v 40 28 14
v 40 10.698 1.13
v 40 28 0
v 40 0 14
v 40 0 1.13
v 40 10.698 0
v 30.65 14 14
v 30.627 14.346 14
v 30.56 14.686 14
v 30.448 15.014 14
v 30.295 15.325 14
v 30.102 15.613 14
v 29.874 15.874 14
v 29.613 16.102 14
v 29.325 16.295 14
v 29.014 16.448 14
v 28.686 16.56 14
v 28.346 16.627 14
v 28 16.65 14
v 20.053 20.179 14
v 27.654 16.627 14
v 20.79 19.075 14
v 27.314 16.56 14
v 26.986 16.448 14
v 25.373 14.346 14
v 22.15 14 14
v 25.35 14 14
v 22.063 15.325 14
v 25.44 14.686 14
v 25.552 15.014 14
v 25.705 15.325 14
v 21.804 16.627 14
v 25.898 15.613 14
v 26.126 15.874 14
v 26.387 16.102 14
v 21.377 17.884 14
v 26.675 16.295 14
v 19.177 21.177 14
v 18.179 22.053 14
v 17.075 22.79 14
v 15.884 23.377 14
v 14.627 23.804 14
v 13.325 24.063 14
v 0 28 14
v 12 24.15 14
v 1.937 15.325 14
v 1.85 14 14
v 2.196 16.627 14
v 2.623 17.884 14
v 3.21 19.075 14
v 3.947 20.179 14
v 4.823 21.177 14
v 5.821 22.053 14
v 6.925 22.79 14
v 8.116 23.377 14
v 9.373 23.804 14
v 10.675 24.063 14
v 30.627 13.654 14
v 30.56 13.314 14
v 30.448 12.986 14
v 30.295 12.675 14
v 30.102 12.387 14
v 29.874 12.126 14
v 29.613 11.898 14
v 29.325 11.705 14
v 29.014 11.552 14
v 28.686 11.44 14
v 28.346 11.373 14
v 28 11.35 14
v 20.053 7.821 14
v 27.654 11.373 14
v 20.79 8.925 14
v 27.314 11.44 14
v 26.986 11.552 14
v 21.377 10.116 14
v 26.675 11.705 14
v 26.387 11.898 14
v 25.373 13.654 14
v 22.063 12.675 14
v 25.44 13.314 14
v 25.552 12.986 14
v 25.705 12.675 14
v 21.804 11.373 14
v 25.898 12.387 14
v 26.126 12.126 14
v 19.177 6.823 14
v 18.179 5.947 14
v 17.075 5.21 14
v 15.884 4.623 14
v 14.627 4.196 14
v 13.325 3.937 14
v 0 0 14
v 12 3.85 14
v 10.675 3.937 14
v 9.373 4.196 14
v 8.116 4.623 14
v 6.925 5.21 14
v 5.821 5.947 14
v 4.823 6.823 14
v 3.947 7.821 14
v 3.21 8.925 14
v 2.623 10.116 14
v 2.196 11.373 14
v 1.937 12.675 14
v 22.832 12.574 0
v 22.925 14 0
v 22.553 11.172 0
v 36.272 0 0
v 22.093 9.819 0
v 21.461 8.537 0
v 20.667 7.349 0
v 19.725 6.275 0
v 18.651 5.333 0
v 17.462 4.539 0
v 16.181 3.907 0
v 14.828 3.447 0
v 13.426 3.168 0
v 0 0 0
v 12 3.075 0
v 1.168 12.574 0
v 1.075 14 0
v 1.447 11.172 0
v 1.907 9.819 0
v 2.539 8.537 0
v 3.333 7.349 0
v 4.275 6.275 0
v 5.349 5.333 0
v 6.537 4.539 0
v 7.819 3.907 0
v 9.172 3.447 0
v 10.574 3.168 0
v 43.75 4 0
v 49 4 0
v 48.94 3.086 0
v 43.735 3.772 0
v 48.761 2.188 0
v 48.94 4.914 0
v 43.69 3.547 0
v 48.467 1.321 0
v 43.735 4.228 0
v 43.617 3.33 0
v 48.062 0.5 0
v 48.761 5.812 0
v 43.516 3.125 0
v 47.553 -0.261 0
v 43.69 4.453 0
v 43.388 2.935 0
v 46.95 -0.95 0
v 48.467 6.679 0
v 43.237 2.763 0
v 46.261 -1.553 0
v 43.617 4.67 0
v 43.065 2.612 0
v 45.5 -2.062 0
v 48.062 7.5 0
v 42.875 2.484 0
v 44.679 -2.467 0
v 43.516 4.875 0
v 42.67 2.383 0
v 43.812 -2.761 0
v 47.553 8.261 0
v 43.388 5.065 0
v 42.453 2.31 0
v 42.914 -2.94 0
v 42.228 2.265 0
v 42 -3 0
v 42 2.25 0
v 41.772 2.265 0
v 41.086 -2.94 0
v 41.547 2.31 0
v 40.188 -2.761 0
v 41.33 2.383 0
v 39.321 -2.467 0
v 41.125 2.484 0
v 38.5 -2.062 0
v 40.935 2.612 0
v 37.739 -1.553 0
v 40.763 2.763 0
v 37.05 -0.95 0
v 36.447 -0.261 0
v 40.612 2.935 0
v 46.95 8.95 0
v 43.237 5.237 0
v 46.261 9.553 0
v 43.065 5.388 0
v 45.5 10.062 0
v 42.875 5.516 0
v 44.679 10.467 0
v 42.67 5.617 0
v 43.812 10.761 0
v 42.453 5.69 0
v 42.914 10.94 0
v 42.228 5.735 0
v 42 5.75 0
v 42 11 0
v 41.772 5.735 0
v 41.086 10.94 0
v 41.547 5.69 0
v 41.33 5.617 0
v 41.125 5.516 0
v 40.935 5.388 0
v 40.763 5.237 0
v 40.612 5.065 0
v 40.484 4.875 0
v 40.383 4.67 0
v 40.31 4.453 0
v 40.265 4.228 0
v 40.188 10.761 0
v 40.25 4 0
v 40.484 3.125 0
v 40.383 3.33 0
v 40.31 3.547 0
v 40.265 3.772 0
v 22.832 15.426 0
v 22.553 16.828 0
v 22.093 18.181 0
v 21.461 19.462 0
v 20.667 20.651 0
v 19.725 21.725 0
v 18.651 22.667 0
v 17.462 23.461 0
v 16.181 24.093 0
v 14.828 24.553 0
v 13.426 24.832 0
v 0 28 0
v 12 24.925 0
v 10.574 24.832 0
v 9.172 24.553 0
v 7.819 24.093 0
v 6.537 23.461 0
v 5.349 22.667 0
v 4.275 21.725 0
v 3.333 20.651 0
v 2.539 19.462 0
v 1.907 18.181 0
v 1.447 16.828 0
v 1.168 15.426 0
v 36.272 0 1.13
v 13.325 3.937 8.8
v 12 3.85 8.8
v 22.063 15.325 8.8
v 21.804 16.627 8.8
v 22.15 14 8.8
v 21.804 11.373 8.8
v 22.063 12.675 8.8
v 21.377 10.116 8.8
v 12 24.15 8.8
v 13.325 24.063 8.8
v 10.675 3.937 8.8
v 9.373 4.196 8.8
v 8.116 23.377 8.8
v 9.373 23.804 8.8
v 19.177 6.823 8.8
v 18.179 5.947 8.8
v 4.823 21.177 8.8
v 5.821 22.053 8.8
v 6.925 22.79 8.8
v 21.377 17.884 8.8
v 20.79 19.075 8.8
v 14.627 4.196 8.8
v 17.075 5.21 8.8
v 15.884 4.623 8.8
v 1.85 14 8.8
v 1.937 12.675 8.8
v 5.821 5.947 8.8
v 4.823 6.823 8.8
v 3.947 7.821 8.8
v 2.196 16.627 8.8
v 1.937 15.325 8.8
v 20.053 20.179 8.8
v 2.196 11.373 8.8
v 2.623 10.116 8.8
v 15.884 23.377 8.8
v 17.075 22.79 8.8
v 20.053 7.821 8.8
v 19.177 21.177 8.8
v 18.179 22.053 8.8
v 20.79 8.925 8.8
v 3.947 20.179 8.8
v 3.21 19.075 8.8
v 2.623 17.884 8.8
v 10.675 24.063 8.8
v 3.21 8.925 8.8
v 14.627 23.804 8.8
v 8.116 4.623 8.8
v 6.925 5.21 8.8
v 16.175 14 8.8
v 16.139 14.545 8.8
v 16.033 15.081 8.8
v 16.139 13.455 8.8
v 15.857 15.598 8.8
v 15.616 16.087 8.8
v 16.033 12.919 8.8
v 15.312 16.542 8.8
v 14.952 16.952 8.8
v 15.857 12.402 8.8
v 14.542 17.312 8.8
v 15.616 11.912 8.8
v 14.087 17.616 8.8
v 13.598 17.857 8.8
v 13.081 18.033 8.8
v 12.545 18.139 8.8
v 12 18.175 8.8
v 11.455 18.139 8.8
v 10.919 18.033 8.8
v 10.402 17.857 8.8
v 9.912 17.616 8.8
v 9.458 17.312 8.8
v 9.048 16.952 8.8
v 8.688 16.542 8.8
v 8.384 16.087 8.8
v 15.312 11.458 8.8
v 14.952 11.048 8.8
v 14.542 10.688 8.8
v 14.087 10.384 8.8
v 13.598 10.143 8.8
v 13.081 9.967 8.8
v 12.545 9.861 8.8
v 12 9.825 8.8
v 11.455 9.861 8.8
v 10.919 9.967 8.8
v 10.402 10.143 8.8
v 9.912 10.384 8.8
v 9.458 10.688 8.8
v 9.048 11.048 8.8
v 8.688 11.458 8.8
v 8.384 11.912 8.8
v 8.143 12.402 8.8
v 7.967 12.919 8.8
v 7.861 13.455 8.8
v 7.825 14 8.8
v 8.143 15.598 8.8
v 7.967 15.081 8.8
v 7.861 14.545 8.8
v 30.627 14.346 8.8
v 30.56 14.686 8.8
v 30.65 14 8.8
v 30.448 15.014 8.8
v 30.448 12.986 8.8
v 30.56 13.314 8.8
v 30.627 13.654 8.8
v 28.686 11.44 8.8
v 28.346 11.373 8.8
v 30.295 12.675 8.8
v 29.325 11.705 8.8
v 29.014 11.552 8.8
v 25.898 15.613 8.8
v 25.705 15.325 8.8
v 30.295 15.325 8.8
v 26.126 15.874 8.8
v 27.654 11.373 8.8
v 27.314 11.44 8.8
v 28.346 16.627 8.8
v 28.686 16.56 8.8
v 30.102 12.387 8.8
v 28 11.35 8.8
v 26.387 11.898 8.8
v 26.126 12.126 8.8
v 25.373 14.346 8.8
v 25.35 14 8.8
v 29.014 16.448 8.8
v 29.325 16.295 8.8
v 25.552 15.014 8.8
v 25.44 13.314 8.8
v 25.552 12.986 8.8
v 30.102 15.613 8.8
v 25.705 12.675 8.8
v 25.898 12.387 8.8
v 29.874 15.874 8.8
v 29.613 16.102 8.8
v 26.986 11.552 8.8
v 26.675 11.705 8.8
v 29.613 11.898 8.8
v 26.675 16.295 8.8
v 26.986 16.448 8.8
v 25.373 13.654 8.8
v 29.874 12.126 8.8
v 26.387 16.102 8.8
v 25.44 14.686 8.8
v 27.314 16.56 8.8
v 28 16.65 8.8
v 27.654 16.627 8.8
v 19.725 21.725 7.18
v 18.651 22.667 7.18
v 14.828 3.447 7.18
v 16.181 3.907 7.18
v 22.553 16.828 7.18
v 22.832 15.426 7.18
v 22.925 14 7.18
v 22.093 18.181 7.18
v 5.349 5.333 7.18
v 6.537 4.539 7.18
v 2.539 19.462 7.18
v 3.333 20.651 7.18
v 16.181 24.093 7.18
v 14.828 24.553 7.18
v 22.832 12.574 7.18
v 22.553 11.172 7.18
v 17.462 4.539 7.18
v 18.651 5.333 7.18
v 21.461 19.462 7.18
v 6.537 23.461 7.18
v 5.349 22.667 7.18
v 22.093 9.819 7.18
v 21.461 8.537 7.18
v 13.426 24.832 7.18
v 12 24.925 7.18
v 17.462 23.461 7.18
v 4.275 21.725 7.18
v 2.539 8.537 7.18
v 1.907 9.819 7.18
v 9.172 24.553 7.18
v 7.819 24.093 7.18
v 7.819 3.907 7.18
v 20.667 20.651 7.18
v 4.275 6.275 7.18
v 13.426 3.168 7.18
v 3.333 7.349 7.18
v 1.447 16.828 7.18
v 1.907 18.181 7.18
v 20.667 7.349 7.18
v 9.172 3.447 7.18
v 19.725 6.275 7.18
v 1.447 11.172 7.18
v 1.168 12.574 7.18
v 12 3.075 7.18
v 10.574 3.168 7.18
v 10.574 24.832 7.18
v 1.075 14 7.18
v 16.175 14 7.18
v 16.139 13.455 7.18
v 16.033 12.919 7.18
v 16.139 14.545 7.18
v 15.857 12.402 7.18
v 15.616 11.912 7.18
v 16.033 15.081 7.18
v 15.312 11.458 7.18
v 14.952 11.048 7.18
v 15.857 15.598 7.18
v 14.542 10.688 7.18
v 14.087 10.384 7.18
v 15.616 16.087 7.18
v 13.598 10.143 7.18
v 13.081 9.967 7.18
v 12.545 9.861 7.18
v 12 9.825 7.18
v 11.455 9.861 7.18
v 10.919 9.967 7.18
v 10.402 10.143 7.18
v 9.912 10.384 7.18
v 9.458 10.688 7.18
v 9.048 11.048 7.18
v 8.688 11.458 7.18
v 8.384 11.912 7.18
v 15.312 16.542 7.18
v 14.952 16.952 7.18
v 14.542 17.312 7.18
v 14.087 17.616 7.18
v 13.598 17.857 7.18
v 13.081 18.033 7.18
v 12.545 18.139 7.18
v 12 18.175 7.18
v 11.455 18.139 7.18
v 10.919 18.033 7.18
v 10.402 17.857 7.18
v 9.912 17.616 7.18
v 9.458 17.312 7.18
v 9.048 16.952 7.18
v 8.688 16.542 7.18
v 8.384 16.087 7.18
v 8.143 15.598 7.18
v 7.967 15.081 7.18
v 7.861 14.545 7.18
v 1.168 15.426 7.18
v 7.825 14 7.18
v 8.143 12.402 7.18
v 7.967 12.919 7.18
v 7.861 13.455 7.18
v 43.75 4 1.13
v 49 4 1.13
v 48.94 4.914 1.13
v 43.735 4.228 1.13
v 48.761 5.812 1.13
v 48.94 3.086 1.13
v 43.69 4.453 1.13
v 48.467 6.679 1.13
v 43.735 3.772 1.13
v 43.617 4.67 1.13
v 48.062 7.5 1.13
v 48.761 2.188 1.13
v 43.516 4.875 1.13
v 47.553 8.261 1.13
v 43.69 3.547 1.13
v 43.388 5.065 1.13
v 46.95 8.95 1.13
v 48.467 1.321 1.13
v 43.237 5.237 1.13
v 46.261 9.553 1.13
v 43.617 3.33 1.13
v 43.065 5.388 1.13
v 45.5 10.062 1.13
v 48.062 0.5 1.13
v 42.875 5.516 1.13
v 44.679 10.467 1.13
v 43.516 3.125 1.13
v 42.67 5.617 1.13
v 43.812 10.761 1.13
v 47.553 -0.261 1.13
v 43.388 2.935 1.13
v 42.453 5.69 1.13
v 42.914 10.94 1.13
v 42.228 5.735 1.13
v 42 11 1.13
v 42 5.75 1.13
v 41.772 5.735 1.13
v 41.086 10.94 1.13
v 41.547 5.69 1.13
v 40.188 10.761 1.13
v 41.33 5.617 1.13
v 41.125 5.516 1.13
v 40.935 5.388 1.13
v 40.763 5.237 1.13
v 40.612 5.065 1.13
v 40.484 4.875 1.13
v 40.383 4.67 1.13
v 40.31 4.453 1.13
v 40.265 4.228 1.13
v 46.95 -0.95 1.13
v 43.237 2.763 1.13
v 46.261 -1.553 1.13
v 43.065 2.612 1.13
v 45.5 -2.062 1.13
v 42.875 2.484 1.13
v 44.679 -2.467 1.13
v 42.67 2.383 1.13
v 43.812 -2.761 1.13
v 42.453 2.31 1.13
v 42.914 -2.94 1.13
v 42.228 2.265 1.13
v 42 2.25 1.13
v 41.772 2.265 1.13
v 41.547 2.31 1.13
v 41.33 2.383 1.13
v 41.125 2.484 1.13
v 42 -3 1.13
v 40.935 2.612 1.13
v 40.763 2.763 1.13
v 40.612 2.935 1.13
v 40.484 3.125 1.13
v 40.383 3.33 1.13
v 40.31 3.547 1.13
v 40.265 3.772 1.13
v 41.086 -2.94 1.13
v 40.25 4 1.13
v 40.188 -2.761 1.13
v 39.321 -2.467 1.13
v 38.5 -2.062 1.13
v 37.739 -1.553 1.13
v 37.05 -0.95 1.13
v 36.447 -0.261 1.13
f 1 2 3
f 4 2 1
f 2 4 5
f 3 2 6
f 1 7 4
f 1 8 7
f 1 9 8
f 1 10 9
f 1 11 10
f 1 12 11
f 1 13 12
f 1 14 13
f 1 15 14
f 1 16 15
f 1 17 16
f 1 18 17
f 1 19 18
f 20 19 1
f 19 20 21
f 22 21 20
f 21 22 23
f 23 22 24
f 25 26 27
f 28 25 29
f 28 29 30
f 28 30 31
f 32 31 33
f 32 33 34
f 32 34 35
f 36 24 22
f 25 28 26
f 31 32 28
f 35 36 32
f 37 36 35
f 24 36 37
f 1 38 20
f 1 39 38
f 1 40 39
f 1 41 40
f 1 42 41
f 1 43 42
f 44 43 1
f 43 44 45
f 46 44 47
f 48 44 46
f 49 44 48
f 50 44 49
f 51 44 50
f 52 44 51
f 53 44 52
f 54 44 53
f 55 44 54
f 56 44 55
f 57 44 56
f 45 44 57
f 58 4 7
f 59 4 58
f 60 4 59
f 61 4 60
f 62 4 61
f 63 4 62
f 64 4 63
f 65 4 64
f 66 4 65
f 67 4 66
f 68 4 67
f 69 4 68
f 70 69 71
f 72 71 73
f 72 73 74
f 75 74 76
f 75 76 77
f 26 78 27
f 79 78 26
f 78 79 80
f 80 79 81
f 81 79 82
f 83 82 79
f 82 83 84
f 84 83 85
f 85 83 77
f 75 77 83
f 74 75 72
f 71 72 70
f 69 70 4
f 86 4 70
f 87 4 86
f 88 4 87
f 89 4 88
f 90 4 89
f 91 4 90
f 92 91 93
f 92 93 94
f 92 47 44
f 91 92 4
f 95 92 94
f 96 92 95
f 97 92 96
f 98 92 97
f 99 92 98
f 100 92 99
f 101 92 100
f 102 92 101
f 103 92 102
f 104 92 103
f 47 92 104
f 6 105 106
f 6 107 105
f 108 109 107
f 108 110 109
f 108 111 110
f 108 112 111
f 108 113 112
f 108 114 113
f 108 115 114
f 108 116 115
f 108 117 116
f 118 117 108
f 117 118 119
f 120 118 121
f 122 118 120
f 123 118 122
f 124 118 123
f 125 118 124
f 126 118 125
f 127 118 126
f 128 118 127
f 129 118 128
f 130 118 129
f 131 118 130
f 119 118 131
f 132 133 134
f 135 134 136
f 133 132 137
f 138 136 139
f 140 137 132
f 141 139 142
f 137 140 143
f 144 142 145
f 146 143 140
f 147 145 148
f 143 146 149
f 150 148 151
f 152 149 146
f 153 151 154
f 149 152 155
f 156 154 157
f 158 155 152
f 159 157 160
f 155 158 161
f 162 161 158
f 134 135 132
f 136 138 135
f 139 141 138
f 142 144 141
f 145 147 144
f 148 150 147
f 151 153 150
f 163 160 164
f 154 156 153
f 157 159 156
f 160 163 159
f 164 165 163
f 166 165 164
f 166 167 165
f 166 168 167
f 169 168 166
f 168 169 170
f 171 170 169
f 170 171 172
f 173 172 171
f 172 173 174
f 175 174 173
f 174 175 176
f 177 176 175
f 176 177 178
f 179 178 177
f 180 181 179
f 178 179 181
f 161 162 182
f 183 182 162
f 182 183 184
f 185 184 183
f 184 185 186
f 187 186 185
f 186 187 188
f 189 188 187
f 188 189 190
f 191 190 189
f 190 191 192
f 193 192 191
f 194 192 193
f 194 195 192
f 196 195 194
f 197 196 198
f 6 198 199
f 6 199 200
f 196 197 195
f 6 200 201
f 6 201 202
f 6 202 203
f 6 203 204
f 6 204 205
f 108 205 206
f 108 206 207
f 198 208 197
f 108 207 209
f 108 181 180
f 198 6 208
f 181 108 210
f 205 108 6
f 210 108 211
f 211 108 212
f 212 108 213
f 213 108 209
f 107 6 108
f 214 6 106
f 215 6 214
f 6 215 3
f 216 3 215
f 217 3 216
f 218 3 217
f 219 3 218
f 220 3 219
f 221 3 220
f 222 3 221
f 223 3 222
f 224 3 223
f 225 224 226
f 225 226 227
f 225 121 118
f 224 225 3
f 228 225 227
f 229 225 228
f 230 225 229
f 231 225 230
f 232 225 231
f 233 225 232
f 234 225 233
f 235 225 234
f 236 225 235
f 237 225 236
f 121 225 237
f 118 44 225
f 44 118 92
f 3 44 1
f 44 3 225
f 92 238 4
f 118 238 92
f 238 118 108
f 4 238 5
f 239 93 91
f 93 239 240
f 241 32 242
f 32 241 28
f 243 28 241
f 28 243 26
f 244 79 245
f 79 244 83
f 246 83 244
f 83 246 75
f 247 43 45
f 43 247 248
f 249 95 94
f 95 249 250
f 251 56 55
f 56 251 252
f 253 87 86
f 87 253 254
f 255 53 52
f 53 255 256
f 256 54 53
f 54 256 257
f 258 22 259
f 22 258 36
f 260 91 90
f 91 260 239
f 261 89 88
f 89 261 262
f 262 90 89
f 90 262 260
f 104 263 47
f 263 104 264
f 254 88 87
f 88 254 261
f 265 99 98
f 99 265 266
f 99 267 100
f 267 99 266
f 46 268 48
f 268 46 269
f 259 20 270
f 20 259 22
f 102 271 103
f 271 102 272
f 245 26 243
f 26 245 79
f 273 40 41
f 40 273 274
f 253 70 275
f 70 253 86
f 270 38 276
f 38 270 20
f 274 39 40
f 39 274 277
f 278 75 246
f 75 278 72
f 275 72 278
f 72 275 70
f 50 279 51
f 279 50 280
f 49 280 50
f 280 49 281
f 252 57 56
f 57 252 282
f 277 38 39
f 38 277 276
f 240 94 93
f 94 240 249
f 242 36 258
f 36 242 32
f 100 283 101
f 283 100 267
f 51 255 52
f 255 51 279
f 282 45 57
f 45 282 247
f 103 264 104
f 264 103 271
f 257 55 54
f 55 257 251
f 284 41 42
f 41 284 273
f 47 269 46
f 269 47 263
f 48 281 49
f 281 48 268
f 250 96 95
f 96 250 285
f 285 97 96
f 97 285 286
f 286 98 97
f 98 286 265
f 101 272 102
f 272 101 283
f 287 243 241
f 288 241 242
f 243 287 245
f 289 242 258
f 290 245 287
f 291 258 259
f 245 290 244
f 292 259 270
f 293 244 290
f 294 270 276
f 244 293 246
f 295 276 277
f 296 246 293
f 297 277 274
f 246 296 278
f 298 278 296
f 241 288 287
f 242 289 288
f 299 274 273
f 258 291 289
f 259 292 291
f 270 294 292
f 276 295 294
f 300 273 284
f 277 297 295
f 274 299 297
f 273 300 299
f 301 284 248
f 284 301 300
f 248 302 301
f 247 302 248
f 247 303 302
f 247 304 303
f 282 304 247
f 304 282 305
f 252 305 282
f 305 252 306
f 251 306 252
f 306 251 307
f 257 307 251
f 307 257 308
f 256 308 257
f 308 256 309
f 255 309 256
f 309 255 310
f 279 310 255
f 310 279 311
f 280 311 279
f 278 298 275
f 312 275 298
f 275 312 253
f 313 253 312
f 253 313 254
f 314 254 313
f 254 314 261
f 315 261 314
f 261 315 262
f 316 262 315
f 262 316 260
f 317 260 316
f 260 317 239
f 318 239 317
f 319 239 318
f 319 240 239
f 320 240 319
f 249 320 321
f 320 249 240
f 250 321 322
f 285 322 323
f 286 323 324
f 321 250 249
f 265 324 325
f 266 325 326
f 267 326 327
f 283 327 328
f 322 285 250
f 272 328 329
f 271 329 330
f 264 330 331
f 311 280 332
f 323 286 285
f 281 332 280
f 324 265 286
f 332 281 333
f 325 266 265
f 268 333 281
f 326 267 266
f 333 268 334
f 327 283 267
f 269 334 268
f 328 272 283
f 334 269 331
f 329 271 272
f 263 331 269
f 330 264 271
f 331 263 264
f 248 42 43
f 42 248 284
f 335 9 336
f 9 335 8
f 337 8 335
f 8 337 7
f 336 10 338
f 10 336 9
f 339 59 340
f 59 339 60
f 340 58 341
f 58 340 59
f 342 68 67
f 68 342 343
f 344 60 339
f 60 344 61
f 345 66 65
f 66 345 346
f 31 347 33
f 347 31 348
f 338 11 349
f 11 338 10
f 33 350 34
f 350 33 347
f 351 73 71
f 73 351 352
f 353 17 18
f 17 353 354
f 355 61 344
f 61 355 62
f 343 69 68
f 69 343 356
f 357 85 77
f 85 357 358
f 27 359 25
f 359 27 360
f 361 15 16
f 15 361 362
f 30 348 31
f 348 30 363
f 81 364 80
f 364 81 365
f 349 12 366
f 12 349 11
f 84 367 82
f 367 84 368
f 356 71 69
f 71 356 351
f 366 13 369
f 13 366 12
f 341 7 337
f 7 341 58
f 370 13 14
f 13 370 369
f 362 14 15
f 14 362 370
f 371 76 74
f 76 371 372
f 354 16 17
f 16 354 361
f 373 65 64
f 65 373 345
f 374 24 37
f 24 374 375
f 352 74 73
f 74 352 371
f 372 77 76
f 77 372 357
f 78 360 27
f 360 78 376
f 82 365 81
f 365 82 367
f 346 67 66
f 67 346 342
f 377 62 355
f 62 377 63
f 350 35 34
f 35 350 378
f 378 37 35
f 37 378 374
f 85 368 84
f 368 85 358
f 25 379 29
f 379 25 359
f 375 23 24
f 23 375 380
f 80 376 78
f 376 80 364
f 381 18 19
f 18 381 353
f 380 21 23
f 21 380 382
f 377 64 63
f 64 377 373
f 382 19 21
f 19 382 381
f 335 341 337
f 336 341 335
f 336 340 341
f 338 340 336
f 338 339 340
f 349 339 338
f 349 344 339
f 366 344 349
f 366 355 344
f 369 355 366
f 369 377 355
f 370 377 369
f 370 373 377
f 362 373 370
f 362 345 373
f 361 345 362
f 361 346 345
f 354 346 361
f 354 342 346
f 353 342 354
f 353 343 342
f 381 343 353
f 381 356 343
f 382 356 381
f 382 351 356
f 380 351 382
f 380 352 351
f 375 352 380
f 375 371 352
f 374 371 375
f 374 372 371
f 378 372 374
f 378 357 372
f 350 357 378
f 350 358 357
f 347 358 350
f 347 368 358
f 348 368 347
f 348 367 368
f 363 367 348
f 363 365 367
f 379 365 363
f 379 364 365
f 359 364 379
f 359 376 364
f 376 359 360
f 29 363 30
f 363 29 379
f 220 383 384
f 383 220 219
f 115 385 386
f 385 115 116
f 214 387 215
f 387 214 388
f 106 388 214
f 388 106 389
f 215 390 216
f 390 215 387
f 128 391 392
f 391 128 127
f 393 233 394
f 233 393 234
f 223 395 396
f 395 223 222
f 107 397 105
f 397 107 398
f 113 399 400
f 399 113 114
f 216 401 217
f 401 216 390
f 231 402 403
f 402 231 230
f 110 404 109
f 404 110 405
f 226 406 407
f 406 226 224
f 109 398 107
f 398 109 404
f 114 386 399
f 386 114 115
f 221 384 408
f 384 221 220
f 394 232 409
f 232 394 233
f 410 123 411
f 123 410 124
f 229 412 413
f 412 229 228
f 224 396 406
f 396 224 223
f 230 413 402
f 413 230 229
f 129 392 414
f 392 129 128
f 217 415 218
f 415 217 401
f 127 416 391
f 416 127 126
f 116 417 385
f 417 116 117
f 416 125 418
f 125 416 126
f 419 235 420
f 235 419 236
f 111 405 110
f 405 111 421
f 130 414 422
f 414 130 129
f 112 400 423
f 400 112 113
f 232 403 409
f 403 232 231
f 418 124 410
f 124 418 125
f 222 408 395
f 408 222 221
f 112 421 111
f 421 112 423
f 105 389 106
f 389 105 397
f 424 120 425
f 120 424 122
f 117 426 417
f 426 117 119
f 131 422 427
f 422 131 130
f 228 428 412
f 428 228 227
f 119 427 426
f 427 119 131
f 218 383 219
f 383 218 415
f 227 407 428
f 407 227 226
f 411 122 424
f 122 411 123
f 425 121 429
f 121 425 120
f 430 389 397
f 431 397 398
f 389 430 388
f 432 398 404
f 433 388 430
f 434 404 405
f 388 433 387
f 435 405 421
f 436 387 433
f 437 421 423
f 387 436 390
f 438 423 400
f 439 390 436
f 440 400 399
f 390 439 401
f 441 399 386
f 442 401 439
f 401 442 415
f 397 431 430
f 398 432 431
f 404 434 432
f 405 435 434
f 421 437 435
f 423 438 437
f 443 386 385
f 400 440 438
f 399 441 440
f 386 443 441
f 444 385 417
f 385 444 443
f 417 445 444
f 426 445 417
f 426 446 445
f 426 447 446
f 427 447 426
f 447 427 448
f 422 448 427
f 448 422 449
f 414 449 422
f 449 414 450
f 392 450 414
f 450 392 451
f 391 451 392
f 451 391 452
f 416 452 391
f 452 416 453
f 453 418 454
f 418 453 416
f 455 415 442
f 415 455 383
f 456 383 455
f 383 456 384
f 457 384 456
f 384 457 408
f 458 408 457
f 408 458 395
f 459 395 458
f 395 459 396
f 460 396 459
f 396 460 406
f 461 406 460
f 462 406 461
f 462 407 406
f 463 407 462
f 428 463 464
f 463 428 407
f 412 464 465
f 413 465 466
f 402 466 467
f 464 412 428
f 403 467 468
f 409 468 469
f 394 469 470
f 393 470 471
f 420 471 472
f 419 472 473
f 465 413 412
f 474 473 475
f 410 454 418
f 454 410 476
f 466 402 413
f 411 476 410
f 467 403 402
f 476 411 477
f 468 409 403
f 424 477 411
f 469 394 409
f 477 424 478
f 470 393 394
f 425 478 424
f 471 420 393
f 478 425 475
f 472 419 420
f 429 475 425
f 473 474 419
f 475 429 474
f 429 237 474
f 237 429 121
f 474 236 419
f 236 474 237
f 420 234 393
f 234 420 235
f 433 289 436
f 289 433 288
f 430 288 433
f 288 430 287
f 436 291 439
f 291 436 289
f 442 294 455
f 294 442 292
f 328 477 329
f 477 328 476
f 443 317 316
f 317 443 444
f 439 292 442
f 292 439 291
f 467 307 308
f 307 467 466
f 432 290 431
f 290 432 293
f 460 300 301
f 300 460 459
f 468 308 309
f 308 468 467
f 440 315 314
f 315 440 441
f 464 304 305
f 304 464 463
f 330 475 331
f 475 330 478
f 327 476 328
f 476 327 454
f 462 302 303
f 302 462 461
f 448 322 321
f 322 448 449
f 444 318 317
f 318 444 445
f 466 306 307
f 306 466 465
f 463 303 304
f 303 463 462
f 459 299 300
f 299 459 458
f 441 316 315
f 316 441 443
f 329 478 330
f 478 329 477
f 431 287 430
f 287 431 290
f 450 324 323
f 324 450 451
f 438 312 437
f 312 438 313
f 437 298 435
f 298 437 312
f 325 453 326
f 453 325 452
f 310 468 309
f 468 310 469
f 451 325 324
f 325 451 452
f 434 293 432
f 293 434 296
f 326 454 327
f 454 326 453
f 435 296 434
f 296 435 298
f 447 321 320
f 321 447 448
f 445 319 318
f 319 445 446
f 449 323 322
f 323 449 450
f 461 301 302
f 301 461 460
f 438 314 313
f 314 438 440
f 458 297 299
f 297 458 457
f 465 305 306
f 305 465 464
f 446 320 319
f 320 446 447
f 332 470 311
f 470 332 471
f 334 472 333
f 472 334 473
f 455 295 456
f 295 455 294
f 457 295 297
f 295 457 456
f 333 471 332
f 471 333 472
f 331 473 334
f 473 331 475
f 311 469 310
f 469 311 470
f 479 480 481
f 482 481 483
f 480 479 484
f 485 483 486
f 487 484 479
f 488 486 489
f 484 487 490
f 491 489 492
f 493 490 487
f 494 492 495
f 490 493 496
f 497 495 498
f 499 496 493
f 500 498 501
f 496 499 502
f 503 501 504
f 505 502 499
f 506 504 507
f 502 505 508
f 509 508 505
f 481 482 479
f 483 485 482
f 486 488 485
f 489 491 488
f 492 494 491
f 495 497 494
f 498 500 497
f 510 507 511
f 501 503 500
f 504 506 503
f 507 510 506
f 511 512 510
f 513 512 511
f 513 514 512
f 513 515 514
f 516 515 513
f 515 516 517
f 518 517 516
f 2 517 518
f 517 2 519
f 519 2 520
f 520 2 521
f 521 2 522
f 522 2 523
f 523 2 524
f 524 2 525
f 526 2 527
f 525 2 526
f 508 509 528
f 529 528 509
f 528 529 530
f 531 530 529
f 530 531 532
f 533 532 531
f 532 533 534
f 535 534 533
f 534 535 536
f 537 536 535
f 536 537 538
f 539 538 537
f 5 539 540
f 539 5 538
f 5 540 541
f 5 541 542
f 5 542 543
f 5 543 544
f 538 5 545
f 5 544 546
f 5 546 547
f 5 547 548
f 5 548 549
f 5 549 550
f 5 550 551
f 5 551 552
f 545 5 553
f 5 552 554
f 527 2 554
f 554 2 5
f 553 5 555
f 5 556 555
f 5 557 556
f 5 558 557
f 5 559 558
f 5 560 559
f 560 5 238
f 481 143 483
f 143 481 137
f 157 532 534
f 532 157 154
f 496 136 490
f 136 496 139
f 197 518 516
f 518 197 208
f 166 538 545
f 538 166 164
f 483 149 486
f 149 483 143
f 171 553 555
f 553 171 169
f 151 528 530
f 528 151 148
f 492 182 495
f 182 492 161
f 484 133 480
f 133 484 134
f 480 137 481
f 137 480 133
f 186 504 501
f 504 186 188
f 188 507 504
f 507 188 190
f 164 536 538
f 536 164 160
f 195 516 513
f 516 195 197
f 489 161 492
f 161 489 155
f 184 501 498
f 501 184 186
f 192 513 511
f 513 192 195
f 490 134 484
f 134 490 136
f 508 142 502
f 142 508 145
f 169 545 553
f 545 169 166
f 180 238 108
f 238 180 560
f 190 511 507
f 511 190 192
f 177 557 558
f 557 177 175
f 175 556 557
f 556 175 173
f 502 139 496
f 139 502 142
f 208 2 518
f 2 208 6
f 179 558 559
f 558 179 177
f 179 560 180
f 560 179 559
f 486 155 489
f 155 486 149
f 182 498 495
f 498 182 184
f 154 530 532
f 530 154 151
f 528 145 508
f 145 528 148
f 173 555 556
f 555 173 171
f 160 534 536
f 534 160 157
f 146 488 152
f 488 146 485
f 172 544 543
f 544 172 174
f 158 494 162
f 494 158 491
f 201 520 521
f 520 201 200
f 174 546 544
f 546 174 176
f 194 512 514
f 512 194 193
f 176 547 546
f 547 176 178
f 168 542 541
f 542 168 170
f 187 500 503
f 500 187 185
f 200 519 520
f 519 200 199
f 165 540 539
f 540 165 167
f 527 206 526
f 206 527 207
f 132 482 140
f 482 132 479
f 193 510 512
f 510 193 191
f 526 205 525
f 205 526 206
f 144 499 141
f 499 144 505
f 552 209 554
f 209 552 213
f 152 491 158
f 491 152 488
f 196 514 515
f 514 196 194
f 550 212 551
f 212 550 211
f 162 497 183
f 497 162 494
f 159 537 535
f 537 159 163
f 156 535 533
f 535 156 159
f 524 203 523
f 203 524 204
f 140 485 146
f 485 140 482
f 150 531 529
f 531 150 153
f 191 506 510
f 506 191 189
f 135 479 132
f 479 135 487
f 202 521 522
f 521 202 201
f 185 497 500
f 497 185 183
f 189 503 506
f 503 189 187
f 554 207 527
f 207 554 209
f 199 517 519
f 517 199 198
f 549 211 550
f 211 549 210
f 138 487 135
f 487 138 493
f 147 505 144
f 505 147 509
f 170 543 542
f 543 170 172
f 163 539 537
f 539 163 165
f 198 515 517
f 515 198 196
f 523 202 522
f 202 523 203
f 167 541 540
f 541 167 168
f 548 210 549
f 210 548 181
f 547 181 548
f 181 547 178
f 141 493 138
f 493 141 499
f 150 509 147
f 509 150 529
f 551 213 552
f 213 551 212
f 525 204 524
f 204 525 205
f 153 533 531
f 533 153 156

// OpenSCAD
// file: parameters.scad
// =============================================================================
// Gen-AX Stacked dual-stator mid-rotor copper-max ultra - WOUND-AWARE (HARD GATE)
// ONE mid dual-face Halbach rotor | TWO wound pancake stators | 18 coils x185 t
// =============================================================================

wire_awg            = 26;
wire_od             = 0.45;
turns               = 185;      // +5 vs Gen-AU 180; 18x185x~0.114 ~ 380 m
fill                = 0.70;
layers_per_face     = 2;
wind_build_axial    = layers_per_face * wire_od * fill;   // 0.63
wind_build_radial   = 3 * wire_od * fill;                 // 0.945

coil_id_r           = 16.5;
coil_od_r           = 60.5;
span_deg            = 34.0;     // 9 stations x 40 deg
former_web          = 1.20;     // print floor LB walls
flange_t            = 0.60;
wall                = 1.2;
slot_w              = 2.4;
mount_hole          = 3.5;
tab_len             = 7.0;

former_bare_h       = former_web + 2 * flange_t;            // 2.40
coil_envelope_h     = former_bare_h + 2 * wind_build_axial; // 3.66

run_clear           = 0.50;
gap_spacer_h        = run_clear + wind_build_axial;         // 1.13
m2m                 = coil_envelope_h + 2 * run_clear;      // 4.66 per gap

coil_stations       = 9;        // per stator; x2 = 18 total
bay_r_in            = coil_id_r - 2.0 - wind_build_radial;
bay_r_out           = coil_od_r + 2.0 + wind_build_radial;
bay_span            = span_deg + 4.0;
bay_offset          = 2.0;
bay_depth           = former_bare_h + wind_build_axial;     // wound sits in bay
stator_back_web     = 2.0;
stator_thick        = bay_depth + stator_back_web;
stator_od           = 156.0;
shaft_clear_stator  = 38.0;
coil_mount_r        = 27.0;

large_pocket_d      = 20.3;
small_pocket_d      = 5.3;
pocket_h            = 5.2;
large_n             = 8;
R_large             = 38.5;     // tighter copper overlap vs AU R=39.0
R_small_inner       = 25.0;
R_small_mid         = 38.5;
R_small_outer       = 55.0;
carrier_od          = 154.0;
mid_carrier_thick   = 12.0;
hub_h               = 10.0;
hub_od              = 30.0;
rotor_b_offset_deg  = 22.5;

shaft_bore          = 8.35;
bearing_d           = 21.85;
bearing_h           = 7.2;
m3_clear            = 3.5;
bolt_r_inner        = 36.0;
bolt_n_inner        = 6;
flange_bolt_r       = 72.0;
flange_bolt_n       = 6;
brace_r             = 68.0;
brace_d             = 4.3;
brace_n             = 4;

spacer_pad_od       = 14.0;
spacer_pad_id       = m3_clear;
endbell_od          = 156.0;
endbell_thick       = 8.0;
endbell_shaft_clear = 10.0;

$fn = 64;
// main file
// Gen-AX fit coupon — magnet pockets + 608 + spacer height
include <parameters.scad>;
$fn = 48;
block_w = 40; block_d = 28; block_h = 14;
difference() {
    cube([block_w, block_d, block_h]);
    translate([12, block_d/2, block_h - pocket_h])
        cylinder(d=large_pocket_d, h=pocket_h + 0.2);
    translate([28, block_d/2, block_h - pocket_h])
        cylinder(d=small_pocket_d, h=pocket_h + 0.2);
    translate([12, block_d/2, -0.02])
        cylinder(d=bearing_d, h=bearing_h);
    translate([12, block_d/2, -0.1])
        cylinder(d=shaft_bore, h=block_h + 1);
}
translate([block_w + 2, 4, 0])
    difference() {
        cylinder(d=spacer_pad_od, h=gap_spacer_h);
        translate([0, 0, -0.1]) cylinder(d=spacer_pad_id, h=gap_spacer_h + 0.2);
    }
